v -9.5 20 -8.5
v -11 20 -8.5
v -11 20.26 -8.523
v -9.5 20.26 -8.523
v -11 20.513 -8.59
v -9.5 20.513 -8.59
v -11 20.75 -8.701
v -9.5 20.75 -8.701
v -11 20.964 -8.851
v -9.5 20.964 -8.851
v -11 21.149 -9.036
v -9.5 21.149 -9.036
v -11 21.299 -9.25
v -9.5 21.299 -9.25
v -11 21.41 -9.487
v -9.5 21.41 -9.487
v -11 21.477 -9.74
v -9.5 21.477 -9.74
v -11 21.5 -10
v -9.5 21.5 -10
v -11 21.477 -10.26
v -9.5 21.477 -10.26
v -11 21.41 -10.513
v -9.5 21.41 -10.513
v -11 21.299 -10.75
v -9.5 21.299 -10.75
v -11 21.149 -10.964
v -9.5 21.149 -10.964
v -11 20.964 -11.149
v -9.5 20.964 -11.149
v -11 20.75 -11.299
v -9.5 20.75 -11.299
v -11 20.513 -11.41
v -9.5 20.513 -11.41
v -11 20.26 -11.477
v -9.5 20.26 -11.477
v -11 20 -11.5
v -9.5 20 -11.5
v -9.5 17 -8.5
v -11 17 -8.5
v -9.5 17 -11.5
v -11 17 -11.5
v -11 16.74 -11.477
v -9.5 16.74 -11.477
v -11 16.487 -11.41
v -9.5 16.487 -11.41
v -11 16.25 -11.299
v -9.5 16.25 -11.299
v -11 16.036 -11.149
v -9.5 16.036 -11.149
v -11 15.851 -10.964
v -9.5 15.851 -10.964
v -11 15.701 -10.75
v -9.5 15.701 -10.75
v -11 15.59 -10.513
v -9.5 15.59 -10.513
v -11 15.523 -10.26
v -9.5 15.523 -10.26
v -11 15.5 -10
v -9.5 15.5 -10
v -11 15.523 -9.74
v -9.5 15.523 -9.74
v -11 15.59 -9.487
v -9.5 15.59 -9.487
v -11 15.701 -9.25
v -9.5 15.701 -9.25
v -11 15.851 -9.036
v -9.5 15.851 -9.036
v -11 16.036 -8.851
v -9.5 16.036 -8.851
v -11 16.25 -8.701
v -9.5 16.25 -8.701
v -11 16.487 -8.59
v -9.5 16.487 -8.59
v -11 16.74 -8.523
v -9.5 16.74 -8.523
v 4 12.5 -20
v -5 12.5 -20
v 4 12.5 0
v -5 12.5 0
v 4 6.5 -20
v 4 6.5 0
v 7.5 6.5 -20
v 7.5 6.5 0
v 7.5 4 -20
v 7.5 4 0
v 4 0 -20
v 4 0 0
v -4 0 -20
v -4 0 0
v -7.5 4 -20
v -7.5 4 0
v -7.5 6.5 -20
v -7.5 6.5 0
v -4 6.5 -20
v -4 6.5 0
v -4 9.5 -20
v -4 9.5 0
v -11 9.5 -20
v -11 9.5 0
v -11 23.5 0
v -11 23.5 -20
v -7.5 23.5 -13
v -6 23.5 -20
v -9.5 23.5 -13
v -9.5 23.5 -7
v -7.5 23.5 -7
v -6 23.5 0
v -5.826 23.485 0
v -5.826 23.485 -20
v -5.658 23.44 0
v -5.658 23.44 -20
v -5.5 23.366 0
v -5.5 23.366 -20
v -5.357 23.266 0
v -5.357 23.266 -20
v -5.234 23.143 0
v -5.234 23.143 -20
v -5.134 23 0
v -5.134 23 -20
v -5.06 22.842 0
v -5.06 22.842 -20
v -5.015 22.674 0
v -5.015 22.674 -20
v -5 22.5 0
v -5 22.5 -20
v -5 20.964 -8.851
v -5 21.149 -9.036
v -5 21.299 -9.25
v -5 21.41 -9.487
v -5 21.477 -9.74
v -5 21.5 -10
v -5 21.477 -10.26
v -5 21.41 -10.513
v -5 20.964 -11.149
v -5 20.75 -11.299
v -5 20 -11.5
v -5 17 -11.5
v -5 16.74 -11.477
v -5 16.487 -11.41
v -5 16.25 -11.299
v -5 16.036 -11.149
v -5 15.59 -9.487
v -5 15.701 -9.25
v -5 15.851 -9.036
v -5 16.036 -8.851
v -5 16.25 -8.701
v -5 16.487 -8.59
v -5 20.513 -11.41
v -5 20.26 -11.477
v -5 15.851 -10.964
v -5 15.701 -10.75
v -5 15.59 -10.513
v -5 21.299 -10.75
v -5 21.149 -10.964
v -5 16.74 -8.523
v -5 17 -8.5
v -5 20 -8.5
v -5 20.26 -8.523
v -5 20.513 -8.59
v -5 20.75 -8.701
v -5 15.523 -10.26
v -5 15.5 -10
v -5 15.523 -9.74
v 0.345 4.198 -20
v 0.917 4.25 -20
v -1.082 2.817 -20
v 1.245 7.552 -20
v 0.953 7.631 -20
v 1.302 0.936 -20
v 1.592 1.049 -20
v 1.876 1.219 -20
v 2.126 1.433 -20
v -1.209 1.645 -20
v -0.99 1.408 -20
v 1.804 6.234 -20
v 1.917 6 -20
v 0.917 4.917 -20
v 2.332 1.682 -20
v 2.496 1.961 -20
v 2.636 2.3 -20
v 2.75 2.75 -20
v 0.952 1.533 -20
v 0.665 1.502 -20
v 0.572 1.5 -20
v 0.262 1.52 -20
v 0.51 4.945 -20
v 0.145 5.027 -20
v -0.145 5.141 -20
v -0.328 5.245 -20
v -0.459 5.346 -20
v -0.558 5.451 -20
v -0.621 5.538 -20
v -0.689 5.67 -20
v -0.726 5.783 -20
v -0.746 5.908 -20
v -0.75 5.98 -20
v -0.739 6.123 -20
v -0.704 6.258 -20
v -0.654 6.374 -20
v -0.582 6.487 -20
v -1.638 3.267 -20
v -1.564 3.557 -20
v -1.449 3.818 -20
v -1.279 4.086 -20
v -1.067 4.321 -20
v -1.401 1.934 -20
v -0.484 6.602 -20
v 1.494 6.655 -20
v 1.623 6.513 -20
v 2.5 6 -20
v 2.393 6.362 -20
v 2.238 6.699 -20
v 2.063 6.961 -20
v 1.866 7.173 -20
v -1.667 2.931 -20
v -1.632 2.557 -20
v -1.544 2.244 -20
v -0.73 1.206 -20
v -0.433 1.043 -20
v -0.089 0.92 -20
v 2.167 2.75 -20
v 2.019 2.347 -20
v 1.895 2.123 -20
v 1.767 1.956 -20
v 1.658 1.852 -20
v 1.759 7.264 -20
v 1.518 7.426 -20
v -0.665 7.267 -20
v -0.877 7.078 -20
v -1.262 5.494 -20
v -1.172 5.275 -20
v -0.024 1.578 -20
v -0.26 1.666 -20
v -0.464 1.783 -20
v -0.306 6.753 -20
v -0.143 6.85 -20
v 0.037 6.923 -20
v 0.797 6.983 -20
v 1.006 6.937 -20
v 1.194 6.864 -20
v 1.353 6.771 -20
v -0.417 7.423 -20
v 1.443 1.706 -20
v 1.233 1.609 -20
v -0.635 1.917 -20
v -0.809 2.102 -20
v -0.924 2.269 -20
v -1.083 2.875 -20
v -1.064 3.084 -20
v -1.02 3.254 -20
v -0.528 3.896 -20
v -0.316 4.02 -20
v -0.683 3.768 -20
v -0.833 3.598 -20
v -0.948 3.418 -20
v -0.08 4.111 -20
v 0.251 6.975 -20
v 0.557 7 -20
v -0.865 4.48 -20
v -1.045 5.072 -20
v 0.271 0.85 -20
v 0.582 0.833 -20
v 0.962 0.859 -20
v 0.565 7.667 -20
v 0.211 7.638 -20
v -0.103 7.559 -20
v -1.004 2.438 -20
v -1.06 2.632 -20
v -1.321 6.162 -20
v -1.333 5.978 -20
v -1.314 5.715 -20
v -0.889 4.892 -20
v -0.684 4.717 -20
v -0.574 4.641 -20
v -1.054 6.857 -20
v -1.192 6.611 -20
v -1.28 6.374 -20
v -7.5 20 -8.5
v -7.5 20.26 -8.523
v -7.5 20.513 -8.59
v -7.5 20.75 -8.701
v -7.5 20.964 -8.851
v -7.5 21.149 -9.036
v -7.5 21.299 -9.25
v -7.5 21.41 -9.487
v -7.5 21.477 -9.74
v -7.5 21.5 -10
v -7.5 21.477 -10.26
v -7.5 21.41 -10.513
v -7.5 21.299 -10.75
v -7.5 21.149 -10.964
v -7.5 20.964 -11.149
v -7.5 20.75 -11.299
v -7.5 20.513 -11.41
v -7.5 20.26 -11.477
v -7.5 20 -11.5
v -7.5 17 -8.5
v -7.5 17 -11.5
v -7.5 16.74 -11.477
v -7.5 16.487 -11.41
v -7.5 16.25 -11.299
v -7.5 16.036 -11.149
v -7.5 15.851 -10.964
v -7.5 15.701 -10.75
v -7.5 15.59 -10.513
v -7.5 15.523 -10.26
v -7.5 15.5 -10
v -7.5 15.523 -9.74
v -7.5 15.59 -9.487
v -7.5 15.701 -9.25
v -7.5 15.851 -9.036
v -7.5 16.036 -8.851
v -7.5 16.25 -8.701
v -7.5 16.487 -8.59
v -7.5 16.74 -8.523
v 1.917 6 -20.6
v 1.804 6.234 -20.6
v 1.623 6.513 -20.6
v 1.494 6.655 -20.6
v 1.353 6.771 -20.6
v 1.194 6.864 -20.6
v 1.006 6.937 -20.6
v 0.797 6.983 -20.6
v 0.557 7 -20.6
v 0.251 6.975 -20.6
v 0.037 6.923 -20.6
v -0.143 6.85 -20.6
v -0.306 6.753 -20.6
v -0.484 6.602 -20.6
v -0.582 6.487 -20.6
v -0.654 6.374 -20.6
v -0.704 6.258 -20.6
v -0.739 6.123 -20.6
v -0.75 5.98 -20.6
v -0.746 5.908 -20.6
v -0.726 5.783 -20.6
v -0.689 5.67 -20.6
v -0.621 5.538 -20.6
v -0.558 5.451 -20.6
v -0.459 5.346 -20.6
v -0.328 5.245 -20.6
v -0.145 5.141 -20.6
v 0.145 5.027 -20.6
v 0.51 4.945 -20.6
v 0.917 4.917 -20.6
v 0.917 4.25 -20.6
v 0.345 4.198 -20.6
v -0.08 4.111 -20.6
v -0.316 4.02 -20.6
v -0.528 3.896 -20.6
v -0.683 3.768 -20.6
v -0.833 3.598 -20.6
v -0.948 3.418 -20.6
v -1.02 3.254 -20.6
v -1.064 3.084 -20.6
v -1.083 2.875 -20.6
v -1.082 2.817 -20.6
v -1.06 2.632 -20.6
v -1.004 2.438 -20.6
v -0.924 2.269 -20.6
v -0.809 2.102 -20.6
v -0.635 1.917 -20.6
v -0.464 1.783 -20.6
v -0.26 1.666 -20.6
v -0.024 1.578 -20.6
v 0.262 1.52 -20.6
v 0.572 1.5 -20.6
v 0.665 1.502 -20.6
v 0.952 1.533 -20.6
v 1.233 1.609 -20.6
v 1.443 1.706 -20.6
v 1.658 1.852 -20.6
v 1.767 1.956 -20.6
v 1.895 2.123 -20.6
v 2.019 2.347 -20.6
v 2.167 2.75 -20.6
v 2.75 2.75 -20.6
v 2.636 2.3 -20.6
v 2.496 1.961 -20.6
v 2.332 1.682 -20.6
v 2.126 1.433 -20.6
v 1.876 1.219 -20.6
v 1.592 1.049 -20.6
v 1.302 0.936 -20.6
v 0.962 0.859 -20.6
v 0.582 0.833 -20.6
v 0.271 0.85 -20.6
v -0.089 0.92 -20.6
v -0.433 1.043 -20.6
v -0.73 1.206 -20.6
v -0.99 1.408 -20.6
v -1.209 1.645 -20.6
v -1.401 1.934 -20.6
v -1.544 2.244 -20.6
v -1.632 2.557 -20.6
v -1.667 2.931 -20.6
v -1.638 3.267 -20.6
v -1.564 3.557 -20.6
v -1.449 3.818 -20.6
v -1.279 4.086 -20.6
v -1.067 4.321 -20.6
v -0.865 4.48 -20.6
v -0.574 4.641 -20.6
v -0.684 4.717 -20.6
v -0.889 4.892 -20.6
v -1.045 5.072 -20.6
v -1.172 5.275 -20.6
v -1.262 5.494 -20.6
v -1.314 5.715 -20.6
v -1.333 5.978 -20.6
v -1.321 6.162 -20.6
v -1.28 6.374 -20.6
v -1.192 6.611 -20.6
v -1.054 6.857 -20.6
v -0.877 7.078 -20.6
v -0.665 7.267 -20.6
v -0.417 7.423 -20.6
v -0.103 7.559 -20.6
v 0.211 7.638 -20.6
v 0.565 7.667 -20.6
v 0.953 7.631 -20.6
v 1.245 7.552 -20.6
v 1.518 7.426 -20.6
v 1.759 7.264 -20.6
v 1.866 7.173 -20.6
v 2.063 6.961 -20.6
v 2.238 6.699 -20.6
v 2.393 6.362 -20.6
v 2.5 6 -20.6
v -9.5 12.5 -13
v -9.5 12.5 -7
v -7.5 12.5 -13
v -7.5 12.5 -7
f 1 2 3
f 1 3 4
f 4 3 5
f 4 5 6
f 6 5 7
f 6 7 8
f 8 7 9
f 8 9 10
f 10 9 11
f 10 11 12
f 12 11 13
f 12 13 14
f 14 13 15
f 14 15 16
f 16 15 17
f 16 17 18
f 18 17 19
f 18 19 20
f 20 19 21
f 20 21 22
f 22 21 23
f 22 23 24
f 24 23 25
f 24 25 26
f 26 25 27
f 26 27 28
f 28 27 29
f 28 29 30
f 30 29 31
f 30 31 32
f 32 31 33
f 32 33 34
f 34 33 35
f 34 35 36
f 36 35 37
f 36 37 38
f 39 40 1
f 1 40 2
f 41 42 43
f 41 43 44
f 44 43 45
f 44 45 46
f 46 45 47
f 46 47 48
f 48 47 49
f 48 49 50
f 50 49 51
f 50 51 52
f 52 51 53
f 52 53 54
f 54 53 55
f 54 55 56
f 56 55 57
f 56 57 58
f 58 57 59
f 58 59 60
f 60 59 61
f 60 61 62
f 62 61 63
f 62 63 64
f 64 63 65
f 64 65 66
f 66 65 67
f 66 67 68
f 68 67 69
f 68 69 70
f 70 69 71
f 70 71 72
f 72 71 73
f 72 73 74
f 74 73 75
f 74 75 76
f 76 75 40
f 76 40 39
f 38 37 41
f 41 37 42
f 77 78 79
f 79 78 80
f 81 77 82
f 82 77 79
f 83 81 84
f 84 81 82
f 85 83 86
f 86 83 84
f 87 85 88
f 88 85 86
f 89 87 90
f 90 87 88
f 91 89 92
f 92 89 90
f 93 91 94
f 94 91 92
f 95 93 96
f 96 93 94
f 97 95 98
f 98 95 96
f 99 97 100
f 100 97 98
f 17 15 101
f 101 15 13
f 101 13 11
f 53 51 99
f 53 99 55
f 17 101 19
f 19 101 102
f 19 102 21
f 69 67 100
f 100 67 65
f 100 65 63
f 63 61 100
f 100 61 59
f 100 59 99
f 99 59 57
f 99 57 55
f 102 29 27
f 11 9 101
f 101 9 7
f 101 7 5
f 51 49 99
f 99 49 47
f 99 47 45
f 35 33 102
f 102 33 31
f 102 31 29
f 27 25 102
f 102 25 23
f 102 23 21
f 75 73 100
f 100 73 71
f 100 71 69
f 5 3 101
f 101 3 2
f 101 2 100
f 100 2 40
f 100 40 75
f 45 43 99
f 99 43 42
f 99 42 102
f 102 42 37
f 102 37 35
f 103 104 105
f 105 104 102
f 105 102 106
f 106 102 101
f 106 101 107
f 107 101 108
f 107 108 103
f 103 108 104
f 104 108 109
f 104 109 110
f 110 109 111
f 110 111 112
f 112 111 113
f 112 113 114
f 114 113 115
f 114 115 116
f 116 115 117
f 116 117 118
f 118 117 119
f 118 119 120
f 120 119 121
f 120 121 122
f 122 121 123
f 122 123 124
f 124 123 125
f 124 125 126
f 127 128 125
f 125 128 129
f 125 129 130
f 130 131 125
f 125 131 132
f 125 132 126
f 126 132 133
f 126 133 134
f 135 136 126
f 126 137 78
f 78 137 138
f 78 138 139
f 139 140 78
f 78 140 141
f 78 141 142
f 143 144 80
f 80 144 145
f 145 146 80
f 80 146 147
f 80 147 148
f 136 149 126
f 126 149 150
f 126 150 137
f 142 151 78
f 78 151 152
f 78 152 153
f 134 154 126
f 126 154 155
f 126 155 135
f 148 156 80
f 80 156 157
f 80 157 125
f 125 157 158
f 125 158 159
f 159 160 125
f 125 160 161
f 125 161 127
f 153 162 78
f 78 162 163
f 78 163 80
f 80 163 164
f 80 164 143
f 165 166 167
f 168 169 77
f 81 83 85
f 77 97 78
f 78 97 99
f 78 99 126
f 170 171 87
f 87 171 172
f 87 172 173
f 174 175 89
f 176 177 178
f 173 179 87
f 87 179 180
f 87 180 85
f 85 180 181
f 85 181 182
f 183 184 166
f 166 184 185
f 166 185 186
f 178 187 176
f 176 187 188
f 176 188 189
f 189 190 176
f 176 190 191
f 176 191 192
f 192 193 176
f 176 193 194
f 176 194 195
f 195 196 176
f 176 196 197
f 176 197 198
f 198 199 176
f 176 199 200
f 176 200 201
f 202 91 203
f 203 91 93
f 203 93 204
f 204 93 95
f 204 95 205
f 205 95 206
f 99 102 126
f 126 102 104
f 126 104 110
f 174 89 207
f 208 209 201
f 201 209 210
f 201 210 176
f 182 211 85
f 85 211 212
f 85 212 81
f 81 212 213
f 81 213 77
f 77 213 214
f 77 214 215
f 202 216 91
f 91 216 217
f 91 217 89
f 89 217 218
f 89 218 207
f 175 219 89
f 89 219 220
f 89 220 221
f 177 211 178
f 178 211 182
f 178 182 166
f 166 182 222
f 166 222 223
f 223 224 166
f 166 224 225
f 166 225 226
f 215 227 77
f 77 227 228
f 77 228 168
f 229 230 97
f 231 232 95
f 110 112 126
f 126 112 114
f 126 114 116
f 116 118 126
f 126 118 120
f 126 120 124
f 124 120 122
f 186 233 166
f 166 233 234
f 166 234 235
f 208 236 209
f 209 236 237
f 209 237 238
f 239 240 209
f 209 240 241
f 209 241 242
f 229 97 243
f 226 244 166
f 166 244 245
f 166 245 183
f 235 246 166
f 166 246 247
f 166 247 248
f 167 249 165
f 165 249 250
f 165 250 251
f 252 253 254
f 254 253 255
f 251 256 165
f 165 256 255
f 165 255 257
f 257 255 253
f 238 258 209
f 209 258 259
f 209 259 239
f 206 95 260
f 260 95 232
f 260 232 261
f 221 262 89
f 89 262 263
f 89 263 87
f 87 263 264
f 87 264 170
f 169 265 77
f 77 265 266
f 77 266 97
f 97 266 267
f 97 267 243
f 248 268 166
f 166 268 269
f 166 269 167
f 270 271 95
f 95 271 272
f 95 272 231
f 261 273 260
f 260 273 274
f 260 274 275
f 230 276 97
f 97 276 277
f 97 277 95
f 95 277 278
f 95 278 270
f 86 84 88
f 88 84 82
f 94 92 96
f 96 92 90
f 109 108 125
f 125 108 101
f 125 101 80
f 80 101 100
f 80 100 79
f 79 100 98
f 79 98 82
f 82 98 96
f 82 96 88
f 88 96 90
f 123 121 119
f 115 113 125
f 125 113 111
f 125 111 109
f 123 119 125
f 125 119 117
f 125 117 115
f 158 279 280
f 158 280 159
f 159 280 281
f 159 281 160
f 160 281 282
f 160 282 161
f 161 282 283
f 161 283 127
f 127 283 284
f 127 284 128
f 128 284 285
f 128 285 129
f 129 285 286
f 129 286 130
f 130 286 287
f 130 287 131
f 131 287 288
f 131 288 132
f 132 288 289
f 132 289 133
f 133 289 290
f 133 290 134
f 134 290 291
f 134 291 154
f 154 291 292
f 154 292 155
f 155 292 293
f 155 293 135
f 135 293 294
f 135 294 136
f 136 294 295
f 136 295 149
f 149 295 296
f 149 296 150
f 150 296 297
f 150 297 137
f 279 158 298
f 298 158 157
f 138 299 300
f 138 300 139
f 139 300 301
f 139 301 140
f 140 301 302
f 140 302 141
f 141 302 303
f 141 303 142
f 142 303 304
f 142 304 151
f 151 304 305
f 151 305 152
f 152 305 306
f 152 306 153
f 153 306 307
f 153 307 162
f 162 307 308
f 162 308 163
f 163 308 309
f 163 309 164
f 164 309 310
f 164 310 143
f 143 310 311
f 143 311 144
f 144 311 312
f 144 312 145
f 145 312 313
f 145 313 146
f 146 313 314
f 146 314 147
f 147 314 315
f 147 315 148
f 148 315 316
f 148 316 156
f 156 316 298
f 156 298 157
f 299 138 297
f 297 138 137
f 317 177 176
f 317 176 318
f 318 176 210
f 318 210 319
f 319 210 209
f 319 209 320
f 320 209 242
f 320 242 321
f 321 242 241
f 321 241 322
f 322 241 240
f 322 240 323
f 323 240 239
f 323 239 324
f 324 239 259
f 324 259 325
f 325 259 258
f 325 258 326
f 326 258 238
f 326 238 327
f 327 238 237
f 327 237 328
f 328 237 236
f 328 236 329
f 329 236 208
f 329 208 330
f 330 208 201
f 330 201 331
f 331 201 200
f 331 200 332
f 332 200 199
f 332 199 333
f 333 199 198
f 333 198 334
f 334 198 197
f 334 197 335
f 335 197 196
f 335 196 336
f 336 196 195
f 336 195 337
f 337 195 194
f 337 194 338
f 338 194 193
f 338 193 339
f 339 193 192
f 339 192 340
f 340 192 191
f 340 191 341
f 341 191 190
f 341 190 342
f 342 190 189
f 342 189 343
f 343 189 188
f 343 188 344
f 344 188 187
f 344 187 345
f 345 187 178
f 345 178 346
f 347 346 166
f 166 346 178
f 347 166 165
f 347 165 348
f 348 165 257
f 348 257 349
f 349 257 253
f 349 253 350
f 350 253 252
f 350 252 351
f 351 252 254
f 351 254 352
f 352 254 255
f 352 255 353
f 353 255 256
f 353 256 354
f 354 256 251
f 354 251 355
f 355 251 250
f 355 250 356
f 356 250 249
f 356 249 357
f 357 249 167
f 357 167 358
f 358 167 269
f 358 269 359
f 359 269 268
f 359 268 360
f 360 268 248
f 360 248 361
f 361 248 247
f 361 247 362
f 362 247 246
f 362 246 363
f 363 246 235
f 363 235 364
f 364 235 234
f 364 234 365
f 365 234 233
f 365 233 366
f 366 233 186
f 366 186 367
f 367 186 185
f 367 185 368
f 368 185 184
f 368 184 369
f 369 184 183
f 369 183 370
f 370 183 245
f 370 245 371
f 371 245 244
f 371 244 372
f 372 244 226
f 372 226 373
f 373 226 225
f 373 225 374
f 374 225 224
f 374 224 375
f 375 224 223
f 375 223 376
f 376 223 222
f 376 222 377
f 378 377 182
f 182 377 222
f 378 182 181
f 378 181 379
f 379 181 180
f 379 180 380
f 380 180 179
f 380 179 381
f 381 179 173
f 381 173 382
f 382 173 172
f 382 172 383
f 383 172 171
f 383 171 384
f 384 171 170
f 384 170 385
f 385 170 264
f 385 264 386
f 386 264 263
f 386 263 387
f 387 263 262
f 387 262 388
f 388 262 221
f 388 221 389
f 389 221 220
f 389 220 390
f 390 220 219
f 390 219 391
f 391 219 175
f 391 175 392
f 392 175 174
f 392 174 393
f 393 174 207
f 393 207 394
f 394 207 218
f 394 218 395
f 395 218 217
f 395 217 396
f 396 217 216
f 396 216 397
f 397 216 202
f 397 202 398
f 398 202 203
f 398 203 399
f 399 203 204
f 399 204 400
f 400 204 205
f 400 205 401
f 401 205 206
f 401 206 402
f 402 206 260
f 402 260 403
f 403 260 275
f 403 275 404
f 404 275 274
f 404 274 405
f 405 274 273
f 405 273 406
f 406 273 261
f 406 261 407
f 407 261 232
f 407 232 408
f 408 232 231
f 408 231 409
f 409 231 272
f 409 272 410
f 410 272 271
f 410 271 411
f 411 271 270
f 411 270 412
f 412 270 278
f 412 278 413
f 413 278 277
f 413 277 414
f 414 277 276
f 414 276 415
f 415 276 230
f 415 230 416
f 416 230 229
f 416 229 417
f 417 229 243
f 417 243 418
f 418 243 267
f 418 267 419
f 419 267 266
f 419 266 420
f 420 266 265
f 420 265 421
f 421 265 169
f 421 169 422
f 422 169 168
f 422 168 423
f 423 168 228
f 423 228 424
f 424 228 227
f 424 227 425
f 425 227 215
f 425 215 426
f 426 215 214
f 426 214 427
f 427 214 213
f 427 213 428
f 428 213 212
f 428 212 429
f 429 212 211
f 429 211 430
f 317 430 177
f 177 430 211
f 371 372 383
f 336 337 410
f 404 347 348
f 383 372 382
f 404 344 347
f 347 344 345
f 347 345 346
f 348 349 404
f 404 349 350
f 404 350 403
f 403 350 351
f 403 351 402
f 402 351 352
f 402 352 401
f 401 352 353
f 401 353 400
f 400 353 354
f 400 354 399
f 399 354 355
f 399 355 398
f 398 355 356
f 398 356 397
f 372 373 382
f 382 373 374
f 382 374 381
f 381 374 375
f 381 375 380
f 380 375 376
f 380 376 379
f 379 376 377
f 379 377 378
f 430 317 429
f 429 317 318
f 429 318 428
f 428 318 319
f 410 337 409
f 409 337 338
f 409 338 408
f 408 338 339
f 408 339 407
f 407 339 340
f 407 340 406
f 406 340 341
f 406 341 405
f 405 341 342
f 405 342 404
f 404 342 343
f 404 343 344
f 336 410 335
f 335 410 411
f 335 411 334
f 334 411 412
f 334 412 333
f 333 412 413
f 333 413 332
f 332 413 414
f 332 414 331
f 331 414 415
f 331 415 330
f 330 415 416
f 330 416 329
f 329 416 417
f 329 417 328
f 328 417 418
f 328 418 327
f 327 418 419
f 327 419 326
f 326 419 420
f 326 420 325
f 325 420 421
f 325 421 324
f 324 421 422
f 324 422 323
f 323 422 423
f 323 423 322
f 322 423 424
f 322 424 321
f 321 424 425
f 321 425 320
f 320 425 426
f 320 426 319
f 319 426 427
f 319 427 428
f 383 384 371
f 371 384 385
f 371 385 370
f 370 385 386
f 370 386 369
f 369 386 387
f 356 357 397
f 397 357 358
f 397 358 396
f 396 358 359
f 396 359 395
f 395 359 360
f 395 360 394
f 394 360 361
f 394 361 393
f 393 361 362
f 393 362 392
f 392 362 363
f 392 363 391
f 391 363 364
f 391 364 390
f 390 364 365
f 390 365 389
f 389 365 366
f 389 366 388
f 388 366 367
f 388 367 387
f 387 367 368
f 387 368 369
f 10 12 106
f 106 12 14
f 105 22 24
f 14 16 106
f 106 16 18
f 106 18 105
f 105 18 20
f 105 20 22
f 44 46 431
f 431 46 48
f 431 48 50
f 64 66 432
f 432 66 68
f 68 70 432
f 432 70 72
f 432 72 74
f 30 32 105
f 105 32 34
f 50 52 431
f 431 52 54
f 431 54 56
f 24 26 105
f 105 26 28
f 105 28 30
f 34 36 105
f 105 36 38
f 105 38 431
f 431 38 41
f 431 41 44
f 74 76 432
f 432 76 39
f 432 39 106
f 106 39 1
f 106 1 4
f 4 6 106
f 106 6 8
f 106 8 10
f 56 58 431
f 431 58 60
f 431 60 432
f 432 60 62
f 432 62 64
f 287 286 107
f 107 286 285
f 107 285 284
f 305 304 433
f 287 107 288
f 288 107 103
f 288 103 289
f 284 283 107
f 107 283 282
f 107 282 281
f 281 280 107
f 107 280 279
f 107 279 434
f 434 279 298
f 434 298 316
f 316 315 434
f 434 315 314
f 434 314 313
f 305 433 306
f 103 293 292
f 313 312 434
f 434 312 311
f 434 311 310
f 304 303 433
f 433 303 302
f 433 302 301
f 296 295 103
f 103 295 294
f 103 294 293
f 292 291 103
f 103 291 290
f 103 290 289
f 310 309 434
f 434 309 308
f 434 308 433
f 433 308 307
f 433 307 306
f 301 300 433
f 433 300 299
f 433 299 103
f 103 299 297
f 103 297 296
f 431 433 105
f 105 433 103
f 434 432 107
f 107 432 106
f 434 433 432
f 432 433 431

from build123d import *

# Parameters (mm, degrees)
ESTRUSIONE_ESTRUSIONE1_DEPTH = 20
TAGLIO_ESTRUSIONE1_REACH     = 37.979
ESTRUSIONE_ESTRUSIONE4_DEPTH = 0.6
SCHIZZO12_W                  = 2
SCHIZZO12_H                  = 6
TAGLIO_ESTRUSIONE2_DEPTH     = 11


with BuildPart() as part:
    # Schizzo2 → Estrusione-Estrusione1 (new body)
    with BuildSketch(Plane.XY):
        with BuildLine():
            Line((-4, 9.5), (-11, 9.5))
            Line((-11, 9.5), (-11, 23.5))
            Line((-11, 23.5), (-6, 23.5))
            ThreePointArc((-6, 23.5), (-5.292893219, 23.207106781), (-5, 22.5))
            Line((-5, 22.5), (-5, 12.5))
            Line((-5, 12.5), (4, 12.5))
            Line((4, 12.5), (4, 9.5))
            Line((4, 9.5), (4, 6.5))
            Line((4, 6.5), (7.5, 6.5))
            Line((7.5, 6.5), (7.5, 4))
            Line((7.5, 4), (4, 0))
            Line((4, 0), (-4, 0))
            Line((-4, 0), (-7.5, 4))
            Line((-7.5, 4), (-7.5, 6.5))
            Line((-7.5, 6.5), (-4, 6.5))
            Line((-4, 6.5), (-4, 9.5))
        make_face()
    extrude(amount=-ESTRUSIONE_ESTRUSIONE1_DEPTH)

    # Schizzo6 → Taglio-Estrusione1 (cut, up to next)
    with BuildSketch(Plane.ZY.offset(11), mode=Mode.PRIVATE) as taglio_estrusione1_sk1:
        with BuildLine():
            Line((-8.5, 20), (-8.5, 17))
            ThreePointArc((-8.5, 17), (-10, 15.5), (-11.5, 17))
            Line((-11.5, 17), (-11.5, 20))
            ThreePointArc((-11.5, 20), (-10, 21.5), (-8.5, 20))
        make_face()
    taglio_estrusione1_tool1 = extrude(taglio_estrusione1_sk1.sketch, amount=-TAGLIO_ESTRUSIONE1_REACH, mode=Mode.PRIVATE) & part.part
    add(taglio_estrusione1_tool1.solids().sort_by_distance((-11, 18.5, -10))[0], mode=Mode.SUBTRACT)

    # Schizzo11 → Estrusione-Estrusione4 (add)
    with BuildSketch(Plane(origin=(0, 0, -20), x_dir=(-1, 0, 0), z_dir=(0, 0, -1))):
        with BuildLine():
            Line((-1.916666667, 6), (-2.5, 6))
            add(Edge.make_bspline(
                [(-2.5, 6), (-2.484196549, 6.065431756), (-2.453302094, 6.193345487), (-2.388863743, 6.376101829), (-2.318665127, 6.549045511), (-2.234371075, 6.708938219), (-2.142426246, 6.858993324), (-2.037084049, 6.995807413), (-1.923204564, 7.122860063), (-1.797243944, 7.235613218), (-1.665147858, 7.337714716), (-1.525054993, 7.424768393), (-1.379783905, 7.499656106), (-1.228328086, 7.561350822), (-1.070236625, 7.607826795), (-0.906938753, 7.641546577), (-0.738006538, 7.66344436), (-0.623332441, 7.665581492), (-0.565104167, 7.666666667)],
                knots=[0, 0, 0, 0, 1.162005537, 2.271625781, 3.343758855, 4.383309926, 5.390229558, 6.379919256, 7.361854164, 8.333198761, 9.295911338, 10.242430842, 11.177959212, 12.116337295, 13.062827104, 14.020064771, 14.994644689, 16, 16, 16, 16], degree=3))
            add(Edge.make_bspline(
                [(-0.565104167, 7.666666667), (-0.480264789, 7.664105239), (-0.312436625, 7.659038256), (-0.065876681, 7.612768588), (0.171887412, 7.539550485), (0.398253158, 7.438384992), (0.608515961, 7.313608553), (0.795597451, 7.165102613), (0.956961828, 6.995732482), (1.092337101, 6.80865772), (1.198333527, 6.608726059), (1.276493935, 6.402954339), (1.324077057, 6.191830678), (1.330243806, 6.049281445), (1.333333333, 5.977864583)],
                knots=[0, 0, 0, 0, 1.083050992, 2.142477498, 3.193116406, 4.255571735, 5.30263384, 6.308962982, 7.297363603, 8.282367274, 9.249857812, 10.179914175, 11.08814088, 12, 12, 12, 12], degree=3))
            add(Edge.make_bspline(
                [(1.333333333, 5.977864583), (1.331172379, 5.909137679), (1.326943725, 5.774649792), (1.291038272, 5.578309869), (1.230613784, 5.393261183), (1.146912796, 5.218724739), (1.038564203, 5.055807179), (0.907314909, 4.904141953), (0.752238537, 4.763056374), (0.634720509, 4.682234495), (0.57421875, 4.640625)],
                knots=[0, 0, 0, 0, 1.024540389, 2.004866551, 2.965041327, 3.920577974, 4.882998113, 5.874504559, 6.905732034, 8, 8, 8, 8], degree=3))
            add(Edge.make_bspline(
                [(0.57421875, 4.640625), (0.643363437, 4.607236967), (0.780359061, 4.541085617), (0.967095758, 4.411353496), (1.136611813, 4.261563137), (1.231147291, 4.144669639), (1.278645833, 4.0859375)],
                knots=[0, 0, 0, 0, 1.015518401, 2.012035669, 3.001164323, 4, 4, 4, 4], degree=3))
            add(Edge.make_bspline(
                [(1.278645833, 4.0859375), (1.309922612, 4.043115961), (1.37196399, 3.958174116), (1.448544267, 3.821606468), (1.518018337, 3.683525131), (1.572154458, 3.540229091), (1.614077354, 3.393379209), (1.644044271, 3.24272333), (1.662660533, 3.088138431), (1.665326558, 2.983558111), (1.666666667, 2.930989583)],
                knots=[0, 0, 0, 0, 1.025084078, 2.033381695, 3.024893161, 4.013698104, 4.991890475, 5.976764909, 6.982997093, 8, 8, 8, 8], degree=3))
            add(Edge.make_bspline(
                [(1.666666667, 2.930989583), (1.663333999, 2.83997153), (1.656684346, 2.658363755), (1.597248208, 2.390053558), (1.505109333, 2.127777625), (1.374260737, 1.876924352), (1.214792507, 1.64221793), (1.025071762, 1.43221907), (0.807254146, 1.251707377), (0.56432937, 1.100888382), (0.301140417, 0.980326526), (0.019642889, 0.896648418), (-0.276107211, 0.842148704), (-0.478920764, 0.836304519), (-0.58203125, 0.833333333)],
                knots=[0, 0, 0, 0, 0.955779014, 1.907060117, 2.875433937, 3.871313158, 4.872415639, 5.851225146, 6.836215519, 7.83643374, 8.849228613, 9.86973379, 10.916971861, 12, 12, 12, 12], degree=3))
            add(Edge.make_bspline(
                [(-0.58203125, 0.833333333), (-0.651524236, 0.834945729), (-0.78826326, 0.838118387), (-0.9892869, 0.859807218), (-1.181170056, 0.899420085), (-1.364172166, 0.952726223), (-1.538455805, 1.020310887), (-1.703489143, 1.104474184), (-1.860287517, 1.203481259), (-2.007371283, 1.318500779), (-2.144722909, 1.447166124), (-2.268692254, 1.591761428), (-2.381346155, 1.74961375), (-2.479668199, 1.922556569), (-2.568136825, 2.108354904), (-2.640901459, 2.309387829), (-2.704946086, 2.523858156), (-2.73472252, 2.673316816), (-2.75, 2.75)],
                knots=[0, 0, 0, 0, 1.048658725, 2.063410685, 3.046034179, 4.001477787, 4.936774919, 5.862367409, 6.792675028, 7.730719943, 8.675894397, 9.627829632, 10.600096036, 11.597688215, 12.626045268, 13.701542398, 14.82072376, 16, 16, 16, 16], degree=3))
            Line((-2.75, 2.75), (-2.166666667, 2.75))
            add(Edge.make_bspline(
                [(-2.166666667, 2.75), (-2.151469125, 2.699951833), (-2.121908588, 2.602603799), (-2.071590606, 2.462500375), (-2.014263815, 2.33406399), (-1.952765349, 2.216352478), (-1.888176806, 2.108206588), (-1.815906231, 2.012485974), (-1.74130639, 1.924986312), (-1.685073305, 1.875689176), (-1.657552083, 1.8515625)],
                knots=[0, 0, 0, 0, 1.198163088, 2.33053128, 3.407730985, 4.417276592, 5.372219308, 6.28897303, 7.162600585, 8, 8, 8, 8], degree=3))
            add(Edge.make_bspline(
                [(-1.657552083, 1.8515625), (-1.621158441, 1.823504166), (-1.548483496, 1.767474107), (-1.430056781, 1.695971082), (-1.305507707, 1.634014892), (-1.172137598, 1.586688029), (-1.032824452, 1.54661523), (-0.885316488, 1.520391409), (-0.730915085, 1.502399091), (-0.625489239, 1.500811361), (-0.571614583, 1.5)],
                knots=[0, 0, 0, 0, 0.946170439, 1.889420265, 2.845303464, 3.807233317, 4.801018734, 5.828864929, 6.890507805, 8, 8, 8, 8], degree=3))
            add(Edge.make_bspline(
                [(-0.571614583, 1.5), (-0.51078665, 1.501143824), (-0.391842877, 1.503380473), (-0.218283853, 1.523949643), (-0.053170021, 1.553906125), (0.101665412, 1.600173093), (0.24825064, 1.657337532), (0.384530847, 1.729113142), (0.512295044, 1.813324768), (0.629906797, 1.909040348), (0.735662739, 2.013823125), (0.828778978, 2.123418828), (0.907939064, 2.237365369), (0.97179428, 2.356293307), (1.022216731, 2.479710161), (1.056542675, 2.607962273), (1.080409774, 2.740000053), (1.082353483, 2.829753852), (1.083333333, 2.875)],
                knots=[0, 0, 0, 0, 1.217147791, 2.380027433, 3.494444702, 4.572153297, 5.609568379, 6.639424714, 7.649109417, 8.668170816, 9.669597737, 10.625200337, 11.543417969, 12.441394052, 13.322311151, 14.205496177, 15.095365482, 16, 16, 16, 16], degree=3))
            add(Edge.make_bspline(
                [(1.083333333, 2.875), (1.080491345, 2.935563915), (1.074821509, 3.056390388), (1.031534147, 3.234151597), (0.960333399, 3.405423649), (0.860655878, 3.567284402), (0.739318097, 3.71729679), (0.597497555, 3.851143829), (0.43401656, 3.961588284), (0.283551089, 4.037895789), (0.150272941, 4.089964642), (0.036215798, 4.124646719), (-0.091475036, 4.154014937), (-0.231255399, 4.181337727), (-0.384178515, 4.204591659), (-0.5500779, 4.223983603), (-0.728987171, 4.239500107), (-0.852842194, 4.246429284), (-0.916666667, 4.25)],
                knots=[0, 0, 0, 0, 1.07054697, 2.135767047, 3.216561865, 4.33974944, 5.486079747, 6.621378074, 7.775625952, 8.963672916, 9.598146892, 10.304877434, 11.070270905, 11.915000392, 12.823868403, 13.805723172, 14.86925407, 16, 16, 16, 16], degree=3))
            Line((-0.916666667, 4.25), (-0.916666667, 4.916666667))
            add(Edge.make_bspline(
                [(-0.916666667, 4.916666667), (-0.836250216, 4.918031302), (-0.678734144, 4.920704288), (-0.448644721, 4.95303345), (-0.228622855, 4.997754616), (-0.02354462, 5.066255688), (0.163374419, 5.145816239), (0.325539394, 5.238398914), (0.460678382, 5.34131202), (0.568134658, 5.456144008), (0.648974654, 5.579300525), (0.708081563, 5.707660032), (0.742996455, 5.842347574), (0.747657265, 5.934266243), (0.75, 5.98046875)],
                knots=[0, 0, 0, 0, 1.321986639, 2.589447074, 3.816329219, 5.01088745, 6.139805852, 7.153945165, 8.075214402, 8.924034688, 9.728124013, 10.488707548, 11.240355623, 12, 12, 12, 12], degree=3))
            add(Edge.make_bspline(
                [(0.75, 5.98046875), (0.74923038, 6.014413134), (0.747699256, 6.081943876), (0.728390026, 6.180604717), (0.69937395, 6.276249331), (0.659483024, 6.368470979), (0.606089798, 6.456630059), (0.542192966, 6.541478178), (0.466109351, 6.622530911), (0.37892495, 6.698080076), (0.285303026, 6.770080088), (0.182696301, 6.831205413), (0.074198534, 6.883474814), (-0.040310397, 6.926578176), (-0.161202096, 6.959002568), (-0.28790856, 6.982283416), (-0.420671401, 6.996839061), (-0.511247475, 6.99893469), (-0.557291667, 7)],
                knots=[0, 0, 0, 0, 0.884392785, 1.759457502, 2.611959086, 3.489218968, 4.37281399, 5.2945488, 6.255912374, 7.266815255, 8.301784654, 9.332968512, 10.37626691, 11.440494194, 12.520033166, 13.637162961, 14.798855837, 16, 16, 16, 16], degree=3))
            add(Edge.make_bspline(
                [(-0.557291667, 7), (-0.631301907, 6.997416042), (-0.775861121, 6.992368971), (-0.984260252, 6.948163375), (-1.177996158, 6.877632648), (-1.326082253, 6.793442755), (-1.435435605, 6.710334806), (-1.51357849, 6.637753232), (-1.590316581, 6.557092273), (-1.660601409, 6.463383862), (-1.731681652, 6.362974109), (-1.79639298, 6.2507587), (-1.859275266, 6.129664825), (-1.897165715, 6.044058647), (-1.916666667, 6)],
                knots=[0, 0, 0, 0, 1.472543308, 2.876219568, 4.221790263, 5.565193594, 6.249813518, 6.953379497, 7.687249741, 8.463570142, 9.283606569, 10.136032583, 11.040678096, 12, 12, 12, 12], degree=3))
        make_face()
    extrude(amount=ESTRUSIONE_ESTRUSIONE4_DEPTH)

    # Schizzo12 → Taglio-Estrusione2 (cut)
    with BuildSketch(Plane(origin=(0, 23.5, 0), x_dir=(1, 0, 0), z_dir=(0, 1, 0))):
        with Locations((-8.5, 10)):
            Rectangle(SCHIZZO12_W, SCHIZZO12_H)
    extrude(amount=-TAGLIO_ESTRUSIONE2_DEPTH, mode=Mode.SUBTRACT)


solid = part.part
